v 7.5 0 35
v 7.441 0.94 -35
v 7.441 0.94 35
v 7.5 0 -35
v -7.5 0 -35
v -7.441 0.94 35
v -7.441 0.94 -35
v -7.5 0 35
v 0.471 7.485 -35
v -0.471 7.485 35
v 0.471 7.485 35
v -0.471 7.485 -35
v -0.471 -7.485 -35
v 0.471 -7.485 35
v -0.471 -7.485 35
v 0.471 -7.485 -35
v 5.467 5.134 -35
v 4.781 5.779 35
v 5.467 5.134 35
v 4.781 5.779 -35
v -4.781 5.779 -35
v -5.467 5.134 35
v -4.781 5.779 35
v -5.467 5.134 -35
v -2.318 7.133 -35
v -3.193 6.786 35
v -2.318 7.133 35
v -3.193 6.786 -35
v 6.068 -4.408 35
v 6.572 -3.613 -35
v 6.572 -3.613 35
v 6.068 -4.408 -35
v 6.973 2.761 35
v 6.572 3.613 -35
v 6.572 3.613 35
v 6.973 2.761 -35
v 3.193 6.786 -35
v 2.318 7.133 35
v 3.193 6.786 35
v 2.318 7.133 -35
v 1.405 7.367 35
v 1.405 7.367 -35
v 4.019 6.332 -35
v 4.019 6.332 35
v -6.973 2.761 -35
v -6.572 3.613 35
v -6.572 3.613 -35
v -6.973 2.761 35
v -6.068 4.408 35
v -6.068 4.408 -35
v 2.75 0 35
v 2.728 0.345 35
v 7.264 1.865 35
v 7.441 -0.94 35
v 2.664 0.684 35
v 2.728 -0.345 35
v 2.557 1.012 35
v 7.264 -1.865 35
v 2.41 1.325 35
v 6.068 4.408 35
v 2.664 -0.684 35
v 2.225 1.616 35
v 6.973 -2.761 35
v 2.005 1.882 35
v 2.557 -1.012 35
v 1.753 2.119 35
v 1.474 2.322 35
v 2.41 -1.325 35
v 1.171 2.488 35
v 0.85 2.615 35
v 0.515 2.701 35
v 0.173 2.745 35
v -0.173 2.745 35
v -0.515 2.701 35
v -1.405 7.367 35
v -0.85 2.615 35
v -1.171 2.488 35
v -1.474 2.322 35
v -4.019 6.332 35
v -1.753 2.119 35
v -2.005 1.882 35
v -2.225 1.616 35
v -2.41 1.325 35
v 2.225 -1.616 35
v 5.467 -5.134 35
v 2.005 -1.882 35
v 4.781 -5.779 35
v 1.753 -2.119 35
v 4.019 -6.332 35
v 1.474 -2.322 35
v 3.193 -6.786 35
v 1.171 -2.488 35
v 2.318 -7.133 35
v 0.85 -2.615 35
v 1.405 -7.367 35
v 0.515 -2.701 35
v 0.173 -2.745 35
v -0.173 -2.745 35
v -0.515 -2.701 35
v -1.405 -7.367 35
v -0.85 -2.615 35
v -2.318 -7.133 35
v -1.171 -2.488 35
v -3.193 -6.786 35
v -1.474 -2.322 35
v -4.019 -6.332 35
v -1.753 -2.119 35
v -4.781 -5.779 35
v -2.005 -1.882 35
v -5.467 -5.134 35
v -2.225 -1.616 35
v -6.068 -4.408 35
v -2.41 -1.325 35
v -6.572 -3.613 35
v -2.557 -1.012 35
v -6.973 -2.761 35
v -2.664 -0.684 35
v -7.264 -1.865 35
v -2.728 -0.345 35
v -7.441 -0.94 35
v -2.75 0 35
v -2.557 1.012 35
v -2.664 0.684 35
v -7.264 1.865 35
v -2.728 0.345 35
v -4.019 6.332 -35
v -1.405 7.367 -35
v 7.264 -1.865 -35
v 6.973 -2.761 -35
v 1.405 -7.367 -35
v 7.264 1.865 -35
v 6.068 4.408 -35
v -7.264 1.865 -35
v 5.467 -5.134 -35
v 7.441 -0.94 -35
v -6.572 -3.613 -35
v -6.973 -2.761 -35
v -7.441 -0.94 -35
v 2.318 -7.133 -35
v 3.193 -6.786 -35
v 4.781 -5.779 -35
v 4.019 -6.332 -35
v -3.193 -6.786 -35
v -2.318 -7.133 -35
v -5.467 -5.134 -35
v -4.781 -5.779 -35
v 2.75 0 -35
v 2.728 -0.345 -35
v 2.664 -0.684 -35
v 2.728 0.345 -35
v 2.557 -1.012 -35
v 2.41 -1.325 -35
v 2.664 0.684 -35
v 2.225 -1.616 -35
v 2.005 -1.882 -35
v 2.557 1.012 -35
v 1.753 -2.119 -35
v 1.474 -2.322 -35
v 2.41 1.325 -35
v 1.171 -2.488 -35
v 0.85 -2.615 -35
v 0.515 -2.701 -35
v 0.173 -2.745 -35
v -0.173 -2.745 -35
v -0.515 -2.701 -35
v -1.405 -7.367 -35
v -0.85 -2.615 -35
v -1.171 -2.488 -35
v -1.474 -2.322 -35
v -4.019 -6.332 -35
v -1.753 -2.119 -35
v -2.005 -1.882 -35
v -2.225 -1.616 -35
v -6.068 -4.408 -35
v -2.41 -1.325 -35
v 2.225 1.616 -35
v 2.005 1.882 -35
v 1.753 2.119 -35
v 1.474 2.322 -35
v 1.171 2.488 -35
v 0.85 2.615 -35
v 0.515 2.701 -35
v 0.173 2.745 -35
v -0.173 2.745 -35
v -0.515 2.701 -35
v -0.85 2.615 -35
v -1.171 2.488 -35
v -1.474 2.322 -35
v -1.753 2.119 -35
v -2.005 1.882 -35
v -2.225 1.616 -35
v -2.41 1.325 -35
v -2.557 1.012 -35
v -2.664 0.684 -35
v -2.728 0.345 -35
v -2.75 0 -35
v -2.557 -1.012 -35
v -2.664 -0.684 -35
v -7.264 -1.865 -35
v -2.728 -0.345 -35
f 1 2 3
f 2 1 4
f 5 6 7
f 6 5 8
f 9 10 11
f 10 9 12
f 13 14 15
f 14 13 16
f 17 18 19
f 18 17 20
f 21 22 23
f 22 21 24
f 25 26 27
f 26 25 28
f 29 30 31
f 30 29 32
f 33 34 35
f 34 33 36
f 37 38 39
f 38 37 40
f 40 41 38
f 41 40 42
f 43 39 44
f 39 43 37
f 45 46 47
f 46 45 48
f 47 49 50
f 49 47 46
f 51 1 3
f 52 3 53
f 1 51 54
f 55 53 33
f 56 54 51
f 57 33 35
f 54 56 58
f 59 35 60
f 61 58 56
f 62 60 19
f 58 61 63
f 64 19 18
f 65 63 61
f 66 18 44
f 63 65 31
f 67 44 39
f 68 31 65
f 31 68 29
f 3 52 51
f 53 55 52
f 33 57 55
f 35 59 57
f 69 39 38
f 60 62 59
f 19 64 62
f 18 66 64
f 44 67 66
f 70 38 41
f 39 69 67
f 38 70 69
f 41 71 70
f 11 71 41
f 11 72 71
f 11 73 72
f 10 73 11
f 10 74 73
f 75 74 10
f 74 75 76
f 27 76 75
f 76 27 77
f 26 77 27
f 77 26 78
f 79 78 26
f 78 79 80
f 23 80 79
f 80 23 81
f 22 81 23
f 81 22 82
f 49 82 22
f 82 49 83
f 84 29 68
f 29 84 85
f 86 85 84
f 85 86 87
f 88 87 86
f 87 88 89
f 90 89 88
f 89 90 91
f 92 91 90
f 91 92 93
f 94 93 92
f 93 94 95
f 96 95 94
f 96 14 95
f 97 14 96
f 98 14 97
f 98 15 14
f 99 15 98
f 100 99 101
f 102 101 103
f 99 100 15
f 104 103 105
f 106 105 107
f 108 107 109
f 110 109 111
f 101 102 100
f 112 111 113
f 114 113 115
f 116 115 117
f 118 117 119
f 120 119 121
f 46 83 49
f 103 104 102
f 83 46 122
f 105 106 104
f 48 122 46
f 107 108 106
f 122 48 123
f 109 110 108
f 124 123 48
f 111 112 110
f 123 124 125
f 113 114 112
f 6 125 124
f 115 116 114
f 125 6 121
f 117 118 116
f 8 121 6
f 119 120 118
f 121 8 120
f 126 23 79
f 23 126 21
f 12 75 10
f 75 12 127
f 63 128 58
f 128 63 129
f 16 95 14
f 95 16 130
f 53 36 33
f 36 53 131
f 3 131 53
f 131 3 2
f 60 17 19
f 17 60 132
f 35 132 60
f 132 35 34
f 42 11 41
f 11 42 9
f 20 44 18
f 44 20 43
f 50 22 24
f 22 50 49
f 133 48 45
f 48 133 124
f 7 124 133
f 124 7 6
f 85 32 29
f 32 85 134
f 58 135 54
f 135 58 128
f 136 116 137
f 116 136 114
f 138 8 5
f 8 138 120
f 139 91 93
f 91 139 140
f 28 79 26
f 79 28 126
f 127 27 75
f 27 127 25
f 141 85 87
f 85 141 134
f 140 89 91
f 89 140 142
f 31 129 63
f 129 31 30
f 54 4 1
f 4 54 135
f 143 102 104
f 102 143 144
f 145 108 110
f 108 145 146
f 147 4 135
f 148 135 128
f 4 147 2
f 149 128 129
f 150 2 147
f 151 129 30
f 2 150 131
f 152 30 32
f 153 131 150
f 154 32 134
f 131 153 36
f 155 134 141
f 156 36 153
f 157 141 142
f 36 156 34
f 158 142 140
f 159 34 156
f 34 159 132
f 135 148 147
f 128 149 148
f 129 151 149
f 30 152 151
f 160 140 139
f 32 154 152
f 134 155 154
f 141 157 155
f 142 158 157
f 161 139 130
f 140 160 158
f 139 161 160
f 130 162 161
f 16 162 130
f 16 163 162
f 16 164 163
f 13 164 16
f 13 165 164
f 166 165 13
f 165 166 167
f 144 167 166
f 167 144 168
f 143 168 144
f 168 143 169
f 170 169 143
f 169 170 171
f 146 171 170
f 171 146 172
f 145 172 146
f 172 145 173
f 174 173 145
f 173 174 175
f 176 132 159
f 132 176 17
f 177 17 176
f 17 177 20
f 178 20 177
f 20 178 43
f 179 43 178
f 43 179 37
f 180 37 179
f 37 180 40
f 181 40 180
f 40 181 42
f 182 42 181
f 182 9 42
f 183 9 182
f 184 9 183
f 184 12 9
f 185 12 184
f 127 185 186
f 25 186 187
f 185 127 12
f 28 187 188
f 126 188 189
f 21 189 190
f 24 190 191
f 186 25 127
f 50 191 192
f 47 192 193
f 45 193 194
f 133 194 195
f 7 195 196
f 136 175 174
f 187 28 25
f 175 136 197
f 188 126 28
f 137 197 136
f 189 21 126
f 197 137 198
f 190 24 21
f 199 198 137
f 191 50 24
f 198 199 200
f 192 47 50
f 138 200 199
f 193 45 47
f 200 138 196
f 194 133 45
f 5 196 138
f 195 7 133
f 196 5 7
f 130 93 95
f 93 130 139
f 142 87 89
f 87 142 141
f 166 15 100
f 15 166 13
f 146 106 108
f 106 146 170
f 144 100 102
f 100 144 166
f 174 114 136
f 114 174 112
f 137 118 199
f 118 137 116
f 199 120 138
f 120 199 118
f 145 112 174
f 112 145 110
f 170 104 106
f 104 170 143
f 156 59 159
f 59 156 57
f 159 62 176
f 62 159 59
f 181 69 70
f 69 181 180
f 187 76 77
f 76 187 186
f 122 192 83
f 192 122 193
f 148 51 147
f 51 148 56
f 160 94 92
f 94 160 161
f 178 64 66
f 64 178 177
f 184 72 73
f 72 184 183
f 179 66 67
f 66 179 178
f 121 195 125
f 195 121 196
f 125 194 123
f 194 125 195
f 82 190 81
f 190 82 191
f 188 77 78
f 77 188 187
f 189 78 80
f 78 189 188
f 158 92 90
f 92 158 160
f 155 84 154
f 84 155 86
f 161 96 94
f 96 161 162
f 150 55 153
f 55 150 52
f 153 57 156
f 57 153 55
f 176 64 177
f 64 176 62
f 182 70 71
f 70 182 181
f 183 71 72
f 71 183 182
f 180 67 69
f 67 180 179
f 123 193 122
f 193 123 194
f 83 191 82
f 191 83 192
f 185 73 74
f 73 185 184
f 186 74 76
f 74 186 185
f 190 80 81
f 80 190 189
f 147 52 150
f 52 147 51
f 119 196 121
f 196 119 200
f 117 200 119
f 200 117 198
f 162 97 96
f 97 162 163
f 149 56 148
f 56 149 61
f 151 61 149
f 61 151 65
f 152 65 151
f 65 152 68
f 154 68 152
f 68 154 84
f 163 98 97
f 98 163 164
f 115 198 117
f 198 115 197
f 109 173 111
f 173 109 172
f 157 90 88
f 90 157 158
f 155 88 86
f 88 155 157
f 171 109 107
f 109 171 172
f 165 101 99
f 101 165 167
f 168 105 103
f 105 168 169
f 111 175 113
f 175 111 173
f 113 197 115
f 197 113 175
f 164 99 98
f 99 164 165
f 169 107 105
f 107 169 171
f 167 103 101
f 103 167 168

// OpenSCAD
$fn = 50;


difference() {
	union() {
		translate(v = [0, 0, -35.0000000000]) {
			cylinder(h = 70, r = 7.5000000000);
		}
	}
	union() {
		translate(v = [0, 0, -100.0000000000]) {
			cylinder(h = 200, r = 2.7500000000);
		}
	}
}
